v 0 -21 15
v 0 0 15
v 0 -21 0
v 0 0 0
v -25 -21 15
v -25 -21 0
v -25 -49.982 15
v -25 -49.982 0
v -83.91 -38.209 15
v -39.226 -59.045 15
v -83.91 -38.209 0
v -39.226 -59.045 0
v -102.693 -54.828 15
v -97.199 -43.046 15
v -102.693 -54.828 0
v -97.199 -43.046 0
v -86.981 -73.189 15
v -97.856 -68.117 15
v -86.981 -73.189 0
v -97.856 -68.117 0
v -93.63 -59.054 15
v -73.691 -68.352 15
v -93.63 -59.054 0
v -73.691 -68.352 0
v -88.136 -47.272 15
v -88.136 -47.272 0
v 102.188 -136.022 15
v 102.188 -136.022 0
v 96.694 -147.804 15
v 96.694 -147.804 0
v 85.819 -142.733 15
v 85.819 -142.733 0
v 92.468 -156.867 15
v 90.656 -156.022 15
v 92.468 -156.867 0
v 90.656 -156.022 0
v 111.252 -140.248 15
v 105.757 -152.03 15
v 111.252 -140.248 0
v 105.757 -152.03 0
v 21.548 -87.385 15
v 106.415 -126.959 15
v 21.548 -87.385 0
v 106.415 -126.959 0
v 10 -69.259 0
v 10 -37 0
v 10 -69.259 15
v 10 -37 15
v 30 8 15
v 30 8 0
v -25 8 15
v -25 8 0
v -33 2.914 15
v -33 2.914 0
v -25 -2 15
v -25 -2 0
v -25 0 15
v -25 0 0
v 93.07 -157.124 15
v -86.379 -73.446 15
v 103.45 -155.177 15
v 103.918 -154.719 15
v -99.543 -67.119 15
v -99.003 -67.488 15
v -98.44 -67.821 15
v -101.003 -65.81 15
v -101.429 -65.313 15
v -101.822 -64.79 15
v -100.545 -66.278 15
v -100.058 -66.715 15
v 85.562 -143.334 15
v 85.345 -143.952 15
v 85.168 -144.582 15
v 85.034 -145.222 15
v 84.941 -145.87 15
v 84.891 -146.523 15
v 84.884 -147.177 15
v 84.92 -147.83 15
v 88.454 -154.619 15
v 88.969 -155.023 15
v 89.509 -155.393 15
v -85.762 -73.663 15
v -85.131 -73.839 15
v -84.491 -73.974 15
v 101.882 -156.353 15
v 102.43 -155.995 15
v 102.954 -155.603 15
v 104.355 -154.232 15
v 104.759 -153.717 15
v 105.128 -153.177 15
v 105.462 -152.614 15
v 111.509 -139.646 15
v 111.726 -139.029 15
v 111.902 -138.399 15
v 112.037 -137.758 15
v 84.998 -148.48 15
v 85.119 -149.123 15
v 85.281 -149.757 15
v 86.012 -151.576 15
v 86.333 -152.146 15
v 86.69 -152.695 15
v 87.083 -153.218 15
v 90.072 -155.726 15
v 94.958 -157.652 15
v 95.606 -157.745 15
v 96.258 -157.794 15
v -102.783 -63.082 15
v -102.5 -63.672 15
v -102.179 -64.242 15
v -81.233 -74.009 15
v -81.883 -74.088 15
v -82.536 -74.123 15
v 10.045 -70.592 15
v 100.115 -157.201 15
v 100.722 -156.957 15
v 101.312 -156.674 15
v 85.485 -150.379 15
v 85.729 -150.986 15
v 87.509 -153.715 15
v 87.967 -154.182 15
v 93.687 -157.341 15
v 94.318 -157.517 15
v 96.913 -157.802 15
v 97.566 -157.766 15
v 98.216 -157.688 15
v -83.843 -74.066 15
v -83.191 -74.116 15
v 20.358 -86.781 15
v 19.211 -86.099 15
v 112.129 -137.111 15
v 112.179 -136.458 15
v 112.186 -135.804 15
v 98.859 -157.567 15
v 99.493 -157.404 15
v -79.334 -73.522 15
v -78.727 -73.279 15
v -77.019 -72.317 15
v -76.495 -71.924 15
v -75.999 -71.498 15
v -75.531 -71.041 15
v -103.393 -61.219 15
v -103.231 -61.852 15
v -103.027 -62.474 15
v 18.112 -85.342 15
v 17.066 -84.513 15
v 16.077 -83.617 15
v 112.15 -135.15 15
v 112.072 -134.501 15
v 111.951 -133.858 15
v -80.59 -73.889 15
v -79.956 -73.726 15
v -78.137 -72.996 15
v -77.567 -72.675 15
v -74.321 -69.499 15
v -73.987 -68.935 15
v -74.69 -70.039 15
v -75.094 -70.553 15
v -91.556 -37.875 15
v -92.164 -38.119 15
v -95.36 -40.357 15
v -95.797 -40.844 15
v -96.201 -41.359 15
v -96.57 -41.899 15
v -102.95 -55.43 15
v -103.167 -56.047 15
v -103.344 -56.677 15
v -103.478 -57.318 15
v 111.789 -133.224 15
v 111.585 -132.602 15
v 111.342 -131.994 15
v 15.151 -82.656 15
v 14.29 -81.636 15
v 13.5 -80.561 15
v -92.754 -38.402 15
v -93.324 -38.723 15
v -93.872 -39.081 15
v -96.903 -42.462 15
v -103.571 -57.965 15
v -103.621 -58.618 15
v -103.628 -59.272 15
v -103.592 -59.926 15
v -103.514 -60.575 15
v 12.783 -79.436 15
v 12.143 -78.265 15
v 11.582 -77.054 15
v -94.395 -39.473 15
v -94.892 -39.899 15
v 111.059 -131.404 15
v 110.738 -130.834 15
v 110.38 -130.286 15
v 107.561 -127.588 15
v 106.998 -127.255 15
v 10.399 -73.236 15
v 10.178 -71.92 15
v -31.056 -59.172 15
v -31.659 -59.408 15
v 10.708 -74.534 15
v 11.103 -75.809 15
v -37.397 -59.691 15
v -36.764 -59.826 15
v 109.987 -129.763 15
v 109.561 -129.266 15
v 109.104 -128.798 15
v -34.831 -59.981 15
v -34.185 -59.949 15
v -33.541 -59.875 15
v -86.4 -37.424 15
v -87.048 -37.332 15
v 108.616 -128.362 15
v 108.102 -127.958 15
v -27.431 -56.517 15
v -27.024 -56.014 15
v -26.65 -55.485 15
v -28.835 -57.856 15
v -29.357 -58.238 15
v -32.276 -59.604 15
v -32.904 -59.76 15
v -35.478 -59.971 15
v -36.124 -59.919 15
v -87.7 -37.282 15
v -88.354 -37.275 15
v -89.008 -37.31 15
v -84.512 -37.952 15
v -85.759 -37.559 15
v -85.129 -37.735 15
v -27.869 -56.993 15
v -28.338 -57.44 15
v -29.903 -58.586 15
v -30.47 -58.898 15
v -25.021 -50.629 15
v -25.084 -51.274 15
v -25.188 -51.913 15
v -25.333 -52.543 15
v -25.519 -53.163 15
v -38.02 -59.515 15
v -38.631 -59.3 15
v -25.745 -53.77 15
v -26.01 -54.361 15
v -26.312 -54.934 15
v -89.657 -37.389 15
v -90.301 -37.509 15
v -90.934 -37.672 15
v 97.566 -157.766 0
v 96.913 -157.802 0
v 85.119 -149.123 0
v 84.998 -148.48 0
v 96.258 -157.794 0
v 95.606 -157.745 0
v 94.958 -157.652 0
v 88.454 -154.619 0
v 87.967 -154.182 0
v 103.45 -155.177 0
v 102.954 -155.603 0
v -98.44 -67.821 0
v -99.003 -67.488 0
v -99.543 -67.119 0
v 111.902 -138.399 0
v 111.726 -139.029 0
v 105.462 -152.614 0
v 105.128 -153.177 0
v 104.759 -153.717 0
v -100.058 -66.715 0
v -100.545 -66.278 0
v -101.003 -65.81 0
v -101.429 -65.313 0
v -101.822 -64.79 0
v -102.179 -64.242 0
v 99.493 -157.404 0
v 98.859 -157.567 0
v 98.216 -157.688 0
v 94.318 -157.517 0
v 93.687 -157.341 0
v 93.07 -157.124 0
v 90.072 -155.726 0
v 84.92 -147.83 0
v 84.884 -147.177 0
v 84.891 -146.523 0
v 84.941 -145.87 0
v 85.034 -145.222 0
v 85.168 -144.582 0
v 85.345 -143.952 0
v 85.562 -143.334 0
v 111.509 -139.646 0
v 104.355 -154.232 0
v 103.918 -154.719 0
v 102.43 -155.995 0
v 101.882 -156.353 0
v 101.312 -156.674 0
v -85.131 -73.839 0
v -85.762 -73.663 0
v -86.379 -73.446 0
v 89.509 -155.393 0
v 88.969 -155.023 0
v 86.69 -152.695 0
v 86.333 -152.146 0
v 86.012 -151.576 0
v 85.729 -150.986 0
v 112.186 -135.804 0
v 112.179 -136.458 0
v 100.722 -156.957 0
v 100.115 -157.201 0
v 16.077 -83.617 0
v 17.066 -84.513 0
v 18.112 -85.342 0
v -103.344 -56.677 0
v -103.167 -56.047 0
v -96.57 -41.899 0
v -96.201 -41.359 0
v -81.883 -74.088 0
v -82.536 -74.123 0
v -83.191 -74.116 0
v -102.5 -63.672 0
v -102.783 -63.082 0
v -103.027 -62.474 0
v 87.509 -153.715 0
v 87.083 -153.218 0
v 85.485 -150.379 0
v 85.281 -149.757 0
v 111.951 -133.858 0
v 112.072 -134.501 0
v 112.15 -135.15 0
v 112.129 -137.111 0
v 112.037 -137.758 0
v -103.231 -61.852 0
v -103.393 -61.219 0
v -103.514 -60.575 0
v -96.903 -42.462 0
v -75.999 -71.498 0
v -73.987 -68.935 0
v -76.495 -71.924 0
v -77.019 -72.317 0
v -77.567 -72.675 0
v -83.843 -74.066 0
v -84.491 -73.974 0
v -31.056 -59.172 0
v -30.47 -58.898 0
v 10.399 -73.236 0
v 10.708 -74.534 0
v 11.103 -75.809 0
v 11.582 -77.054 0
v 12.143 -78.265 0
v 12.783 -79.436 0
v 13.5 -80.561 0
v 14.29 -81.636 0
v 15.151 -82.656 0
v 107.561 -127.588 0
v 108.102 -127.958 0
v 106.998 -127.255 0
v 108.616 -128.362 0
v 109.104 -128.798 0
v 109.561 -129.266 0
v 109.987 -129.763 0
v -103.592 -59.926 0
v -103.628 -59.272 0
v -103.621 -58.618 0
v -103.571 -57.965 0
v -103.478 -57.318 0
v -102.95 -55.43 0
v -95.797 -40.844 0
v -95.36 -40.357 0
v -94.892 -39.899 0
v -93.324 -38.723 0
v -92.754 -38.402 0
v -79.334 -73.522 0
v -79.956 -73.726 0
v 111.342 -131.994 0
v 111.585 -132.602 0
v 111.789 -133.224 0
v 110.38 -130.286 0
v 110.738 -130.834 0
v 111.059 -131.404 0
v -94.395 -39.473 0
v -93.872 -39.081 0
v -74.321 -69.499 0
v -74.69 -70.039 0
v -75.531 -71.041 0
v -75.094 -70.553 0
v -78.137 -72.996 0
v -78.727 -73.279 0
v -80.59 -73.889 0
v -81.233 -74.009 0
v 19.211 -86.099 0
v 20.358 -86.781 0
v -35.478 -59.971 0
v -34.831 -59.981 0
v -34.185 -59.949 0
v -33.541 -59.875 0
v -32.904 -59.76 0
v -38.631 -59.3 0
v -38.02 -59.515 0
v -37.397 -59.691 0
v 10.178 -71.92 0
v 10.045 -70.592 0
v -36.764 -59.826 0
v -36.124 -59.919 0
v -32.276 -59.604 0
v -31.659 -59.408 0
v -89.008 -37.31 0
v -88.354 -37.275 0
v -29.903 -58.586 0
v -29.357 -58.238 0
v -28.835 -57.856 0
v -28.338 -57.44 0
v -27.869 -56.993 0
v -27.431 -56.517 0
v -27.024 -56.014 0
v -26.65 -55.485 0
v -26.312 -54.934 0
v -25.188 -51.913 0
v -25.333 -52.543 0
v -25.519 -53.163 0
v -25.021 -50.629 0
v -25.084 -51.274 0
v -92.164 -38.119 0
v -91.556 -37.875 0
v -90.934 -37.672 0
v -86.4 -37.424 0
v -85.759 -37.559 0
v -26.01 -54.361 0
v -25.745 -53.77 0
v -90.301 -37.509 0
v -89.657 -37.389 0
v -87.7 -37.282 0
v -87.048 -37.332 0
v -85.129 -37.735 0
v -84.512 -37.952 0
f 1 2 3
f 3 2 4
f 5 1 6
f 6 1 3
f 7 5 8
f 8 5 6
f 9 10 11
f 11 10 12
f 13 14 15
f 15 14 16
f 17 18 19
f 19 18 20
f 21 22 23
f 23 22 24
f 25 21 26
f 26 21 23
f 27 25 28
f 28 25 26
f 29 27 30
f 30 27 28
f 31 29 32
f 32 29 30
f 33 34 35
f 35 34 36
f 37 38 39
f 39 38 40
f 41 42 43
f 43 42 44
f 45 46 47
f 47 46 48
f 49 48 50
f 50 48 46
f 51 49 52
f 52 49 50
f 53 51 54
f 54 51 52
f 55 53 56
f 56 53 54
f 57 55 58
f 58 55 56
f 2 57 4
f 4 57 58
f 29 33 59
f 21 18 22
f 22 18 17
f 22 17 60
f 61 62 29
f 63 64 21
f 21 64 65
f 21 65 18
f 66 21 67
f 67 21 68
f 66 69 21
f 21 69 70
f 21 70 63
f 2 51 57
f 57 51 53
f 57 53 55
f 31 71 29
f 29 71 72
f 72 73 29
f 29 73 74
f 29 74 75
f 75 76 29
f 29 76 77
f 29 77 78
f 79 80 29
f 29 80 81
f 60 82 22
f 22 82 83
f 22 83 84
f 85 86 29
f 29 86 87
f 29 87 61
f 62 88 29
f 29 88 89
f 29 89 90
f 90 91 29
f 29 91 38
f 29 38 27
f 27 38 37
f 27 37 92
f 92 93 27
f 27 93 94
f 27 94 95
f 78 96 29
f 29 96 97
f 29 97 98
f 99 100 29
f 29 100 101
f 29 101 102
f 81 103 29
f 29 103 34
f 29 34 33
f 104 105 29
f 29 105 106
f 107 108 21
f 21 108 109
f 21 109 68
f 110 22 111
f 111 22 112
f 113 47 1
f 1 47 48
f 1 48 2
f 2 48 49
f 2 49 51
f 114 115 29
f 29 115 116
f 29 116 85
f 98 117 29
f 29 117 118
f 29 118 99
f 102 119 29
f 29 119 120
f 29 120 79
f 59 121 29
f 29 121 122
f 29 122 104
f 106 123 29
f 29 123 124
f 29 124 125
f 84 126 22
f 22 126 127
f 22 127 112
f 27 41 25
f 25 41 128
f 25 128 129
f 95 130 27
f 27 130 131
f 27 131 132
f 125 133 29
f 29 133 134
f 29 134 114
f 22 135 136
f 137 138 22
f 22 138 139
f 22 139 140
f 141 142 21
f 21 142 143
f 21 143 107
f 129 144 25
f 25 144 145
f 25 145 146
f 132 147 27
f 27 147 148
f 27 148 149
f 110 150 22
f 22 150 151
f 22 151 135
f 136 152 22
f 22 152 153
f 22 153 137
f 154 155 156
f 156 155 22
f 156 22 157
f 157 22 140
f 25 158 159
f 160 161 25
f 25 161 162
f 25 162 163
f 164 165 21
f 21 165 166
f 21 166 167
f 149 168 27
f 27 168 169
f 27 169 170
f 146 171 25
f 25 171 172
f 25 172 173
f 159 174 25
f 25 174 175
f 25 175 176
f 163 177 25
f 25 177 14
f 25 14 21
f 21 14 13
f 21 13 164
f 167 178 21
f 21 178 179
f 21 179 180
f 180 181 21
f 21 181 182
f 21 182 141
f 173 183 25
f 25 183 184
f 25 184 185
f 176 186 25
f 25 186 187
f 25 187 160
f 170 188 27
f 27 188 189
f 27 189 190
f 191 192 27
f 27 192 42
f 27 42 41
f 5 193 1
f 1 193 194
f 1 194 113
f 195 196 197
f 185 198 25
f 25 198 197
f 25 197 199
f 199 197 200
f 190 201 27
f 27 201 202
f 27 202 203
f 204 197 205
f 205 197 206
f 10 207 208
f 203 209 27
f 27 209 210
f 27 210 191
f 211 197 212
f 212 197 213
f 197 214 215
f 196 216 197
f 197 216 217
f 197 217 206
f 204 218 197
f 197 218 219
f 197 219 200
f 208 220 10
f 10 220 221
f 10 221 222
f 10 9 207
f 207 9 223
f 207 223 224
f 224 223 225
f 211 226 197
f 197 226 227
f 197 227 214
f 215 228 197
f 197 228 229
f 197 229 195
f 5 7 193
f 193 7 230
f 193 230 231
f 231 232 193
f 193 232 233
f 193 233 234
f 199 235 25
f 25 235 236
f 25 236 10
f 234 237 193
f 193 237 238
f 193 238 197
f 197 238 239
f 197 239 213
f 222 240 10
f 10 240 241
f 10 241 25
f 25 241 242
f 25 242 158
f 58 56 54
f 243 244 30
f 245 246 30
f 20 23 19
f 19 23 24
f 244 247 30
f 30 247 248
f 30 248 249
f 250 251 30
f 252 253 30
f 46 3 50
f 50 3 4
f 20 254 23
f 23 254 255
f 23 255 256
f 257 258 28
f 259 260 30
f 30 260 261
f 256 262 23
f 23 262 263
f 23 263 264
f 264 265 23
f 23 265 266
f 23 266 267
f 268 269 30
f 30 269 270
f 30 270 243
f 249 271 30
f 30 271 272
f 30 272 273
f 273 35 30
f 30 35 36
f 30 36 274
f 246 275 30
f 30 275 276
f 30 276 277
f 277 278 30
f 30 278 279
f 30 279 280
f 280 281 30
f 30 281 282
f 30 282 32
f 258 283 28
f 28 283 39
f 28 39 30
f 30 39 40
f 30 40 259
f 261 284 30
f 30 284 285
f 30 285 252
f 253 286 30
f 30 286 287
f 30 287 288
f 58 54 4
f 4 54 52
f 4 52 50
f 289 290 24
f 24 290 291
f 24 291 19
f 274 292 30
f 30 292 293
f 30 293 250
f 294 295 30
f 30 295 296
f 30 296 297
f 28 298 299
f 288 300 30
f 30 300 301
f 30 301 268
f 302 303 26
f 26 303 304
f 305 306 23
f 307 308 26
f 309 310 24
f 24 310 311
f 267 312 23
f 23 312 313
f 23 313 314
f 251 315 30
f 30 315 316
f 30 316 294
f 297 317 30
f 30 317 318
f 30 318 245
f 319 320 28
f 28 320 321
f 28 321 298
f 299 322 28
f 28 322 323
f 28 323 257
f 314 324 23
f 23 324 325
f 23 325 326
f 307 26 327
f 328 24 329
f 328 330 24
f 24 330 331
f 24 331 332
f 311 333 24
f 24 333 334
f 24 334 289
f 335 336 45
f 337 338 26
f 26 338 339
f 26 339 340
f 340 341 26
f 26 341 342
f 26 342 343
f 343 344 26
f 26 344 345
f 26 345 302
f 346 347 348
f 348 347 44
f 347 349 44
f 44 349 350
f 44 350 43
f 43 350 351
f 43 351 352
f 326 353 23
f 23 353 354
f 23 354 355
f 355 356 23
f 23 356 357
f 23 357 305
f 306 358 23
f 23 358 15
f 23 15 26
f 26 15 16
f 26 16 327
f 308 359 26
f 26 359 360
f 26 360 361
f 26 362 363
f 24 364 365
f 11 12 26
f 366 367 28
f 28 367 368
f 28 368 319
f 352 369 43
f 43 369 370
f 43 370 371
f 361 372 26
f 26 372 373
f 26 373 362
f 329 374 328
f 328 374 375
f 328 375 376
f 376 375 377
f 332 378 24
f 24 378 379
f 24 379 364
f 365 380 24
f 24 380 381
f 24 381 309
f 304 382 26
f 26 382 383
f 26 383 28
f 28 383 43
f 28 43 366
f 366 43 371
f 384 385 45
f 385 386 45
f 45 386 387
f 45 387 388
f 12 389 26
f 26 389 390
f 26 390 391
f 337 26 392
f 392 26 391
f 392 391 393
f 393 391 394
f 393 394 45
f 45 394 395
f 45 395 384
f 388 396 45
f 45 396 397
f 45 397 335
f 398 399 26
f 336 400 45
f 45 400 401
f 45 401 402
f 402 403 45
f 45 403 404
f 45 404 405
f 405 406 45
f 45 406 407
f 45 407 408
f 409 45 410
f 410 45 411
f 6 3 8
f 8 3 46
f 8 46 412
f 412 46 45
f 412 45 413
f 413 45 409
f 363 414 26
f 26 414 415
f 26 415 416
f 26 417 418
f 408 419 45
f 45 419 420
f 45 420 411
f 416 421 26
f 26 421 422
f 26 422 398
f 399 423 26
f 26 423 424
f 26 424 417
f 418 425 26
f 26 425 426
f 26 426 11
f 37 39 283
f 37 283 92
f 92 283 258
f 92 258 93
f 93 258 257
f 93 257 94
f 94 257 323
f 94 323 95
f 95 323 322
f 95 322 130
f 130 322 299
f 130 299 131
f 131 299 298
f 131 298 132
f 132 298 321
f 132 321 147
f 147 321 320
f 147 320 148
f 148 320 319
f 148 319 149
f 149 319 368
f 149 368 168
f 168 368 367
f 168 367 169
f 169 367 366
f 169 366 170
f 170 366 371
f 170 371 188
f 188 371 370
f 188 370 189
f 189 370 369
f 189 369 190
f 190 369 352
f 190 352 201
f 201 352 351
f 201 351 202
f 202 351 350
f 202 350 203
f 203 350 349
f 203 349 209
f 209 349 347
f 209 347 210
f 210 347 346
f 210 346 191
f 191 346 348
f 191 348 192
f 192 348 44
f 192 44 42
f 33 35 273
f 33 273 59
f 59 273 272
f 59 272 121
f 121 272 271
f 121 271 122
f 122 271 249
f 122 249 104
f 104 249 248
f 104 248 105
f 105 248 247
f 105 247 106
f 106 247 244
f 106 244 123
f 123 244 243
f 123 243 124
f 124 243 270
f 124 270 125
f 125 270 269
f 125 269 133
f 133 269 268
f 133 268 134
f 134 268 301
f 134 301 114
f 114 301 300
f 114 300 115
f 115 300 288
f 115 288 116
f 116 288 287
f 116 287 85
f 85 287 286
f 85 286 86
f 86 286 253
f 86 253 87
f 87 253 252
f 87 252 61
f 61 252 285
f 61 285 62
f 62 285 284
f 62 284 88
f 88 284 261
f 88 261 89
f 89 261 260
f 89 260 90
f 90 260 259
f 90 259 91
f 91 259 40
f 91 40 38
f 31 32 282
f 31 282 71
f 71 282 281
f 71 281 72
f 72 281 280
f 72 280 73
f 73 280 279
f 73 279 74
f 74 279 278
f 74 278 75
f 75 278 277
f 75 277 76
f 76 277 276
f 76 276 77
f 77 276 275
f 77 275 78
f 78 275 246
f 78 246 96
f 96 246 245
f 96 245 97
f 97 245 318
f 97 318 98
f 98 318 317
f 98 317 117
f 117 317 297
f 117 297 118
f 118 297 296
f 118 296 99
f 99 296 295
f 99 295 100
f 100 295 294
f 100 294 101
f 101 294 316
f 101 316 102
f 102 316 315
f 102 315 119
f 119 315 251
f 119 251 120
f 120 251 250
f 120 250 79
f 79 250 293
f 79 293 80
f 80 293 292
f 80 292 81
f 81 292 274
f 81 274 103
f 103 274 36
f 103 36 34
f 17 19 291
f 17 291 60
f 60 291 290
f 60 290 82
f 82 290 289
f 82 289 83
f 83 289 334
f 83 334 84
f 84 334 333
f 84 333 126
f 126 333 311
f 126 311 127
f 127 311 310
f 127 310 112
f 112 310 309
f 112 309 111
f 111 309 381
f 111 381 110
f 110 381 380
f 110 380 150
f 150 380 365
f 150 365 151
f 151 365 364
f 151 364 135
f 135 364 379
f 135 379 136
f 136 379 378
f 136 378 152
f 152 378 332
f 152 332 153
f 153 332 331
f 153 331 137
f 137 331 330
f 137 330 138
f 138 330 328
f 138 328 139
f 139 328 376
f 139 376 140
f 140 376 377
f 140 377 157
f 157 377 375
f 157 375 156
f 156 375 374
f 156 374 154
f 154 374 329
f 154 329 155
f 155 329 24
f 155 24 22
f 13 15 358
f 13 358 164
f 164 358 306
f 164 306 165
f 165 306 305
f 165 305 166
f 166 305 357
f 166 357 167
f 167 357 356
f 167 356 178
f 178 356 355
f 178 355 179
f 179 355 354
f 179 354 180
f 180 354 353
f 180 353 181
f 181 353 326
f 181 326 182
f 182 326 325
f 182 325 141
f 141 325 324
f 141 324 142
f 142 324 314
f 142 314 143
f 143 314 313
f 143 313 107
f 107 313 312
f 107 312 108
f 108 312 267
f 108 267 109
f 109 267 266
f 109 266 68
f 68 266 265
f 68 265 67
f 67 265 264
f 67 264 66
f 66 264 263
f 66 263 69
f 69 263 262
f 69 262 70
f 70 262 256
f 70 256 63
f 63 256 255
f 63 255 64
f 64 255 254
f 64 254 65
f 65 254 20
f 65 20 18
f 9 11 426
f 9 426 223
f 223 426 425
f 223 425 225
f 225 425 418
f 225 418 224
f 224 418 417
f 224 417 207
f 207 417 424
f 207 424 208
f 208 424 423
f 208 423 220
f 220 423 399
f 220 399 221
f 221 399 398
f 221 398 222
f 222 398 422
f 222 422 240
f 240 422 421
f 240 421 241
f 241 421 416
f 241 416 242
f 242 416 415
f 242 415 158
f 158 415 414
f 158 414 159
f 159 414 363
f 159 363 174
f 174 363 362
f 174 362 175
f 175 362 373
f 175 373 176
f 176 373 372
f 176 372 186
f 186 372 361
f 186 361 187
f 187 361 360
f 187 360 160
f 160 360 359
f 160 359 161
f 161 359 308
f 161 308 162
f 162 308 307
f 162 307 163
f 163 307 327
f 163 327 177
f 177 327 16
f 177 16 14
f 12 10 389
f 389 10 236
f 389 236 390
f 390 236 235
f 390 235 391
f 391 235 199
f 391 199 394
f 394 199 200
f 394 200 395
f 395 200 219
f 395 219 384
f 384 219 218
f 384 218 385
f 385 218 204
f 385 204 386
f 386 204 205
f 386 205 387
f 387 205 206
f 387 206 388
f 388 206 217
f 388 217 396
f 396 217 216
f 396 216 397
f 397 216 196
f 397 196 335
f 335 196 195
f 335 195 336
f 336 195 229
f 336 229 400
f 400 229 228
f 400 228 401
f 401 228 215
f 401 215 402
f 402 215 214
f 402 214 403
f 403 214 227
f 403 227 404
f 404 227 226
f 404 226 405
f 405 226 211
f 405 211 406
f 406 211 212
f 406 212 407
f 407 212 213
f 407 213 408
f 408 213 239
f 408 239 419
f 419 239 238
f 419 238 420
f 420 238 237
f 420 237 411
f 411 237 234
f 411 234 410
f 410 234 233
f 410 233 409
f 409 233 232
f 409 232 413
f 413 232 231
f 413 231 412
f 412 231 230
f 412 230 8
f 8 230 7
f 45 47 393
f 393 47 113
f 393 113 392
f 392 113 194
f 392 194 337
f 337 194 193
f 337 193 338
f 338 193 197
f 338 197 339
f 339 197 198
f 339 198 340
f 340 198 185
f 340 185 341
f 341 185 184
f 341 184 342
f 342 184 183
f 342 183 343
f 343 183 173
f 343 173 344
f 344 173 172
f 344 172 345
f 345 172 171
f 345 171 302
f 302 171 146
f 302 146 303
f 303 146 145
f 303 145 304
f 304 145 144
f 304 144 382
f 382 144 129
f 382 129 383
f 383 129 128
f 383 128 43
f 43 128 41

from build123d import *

# Parameters (mm, degrees)
BOSS_EXTRUDE1_DEPTH = 15
FILLET1_R           = 10
FILLET2_R           = 20


with BuildPart() as part:
    # Sketch1 → Boss-Extrude1 (new body)
    with BuildSketch(Plane.XY):
        Polygon((0, 0), (-25, 0), (-25, -2), (-33, 2.914001084), (-25, 8), (10, 8), (30, 8), (10, -37), (10, -82), (115.477706991, -131.185062534), (101.531304353, -161.093219507), (81.592533038, -151.795617748), (85.818715656, -142.732539878), (96.6944091, -147.803959019), (102.188446503, -136.021957787), (-88.136188775, -47.272122822), (-93.630226177, -59.054124053), (-73.691454863, -68.351725812), (-77.91763748, -77.414803682), (-106.919486665, -63.891019306), (-92.973084028, -33.982862334), (-25, -65.679231965), (-25, -21), (0, -21), align=None)
    extrude(amount=BOSS_EXTRUDE1_DEPTH)

    # Fillet1
    fillet1_edges = [part.edges().sort_by_distance(p)[0] for p in [
        (115.477706991, -131.185062534, 7.5),
        (101.531304353, -161.093219507, 7.5),
        (81.592533038, -151.795617748, 7.5),
        (-77.91763748, -77.414803682, 7.5),
        (-106.919486665, -63.891019306, 7.5),
        (-92.973084028, -33.982862334, 7.5),
        (-25, -65.679231965, 7.5),
    ]]
    fillet(fillet1_edges, radius=FILLET1_R - 0.0001)  # a hair under: the kernel refuses the full size

    # Fillet2
    fillet2_edges = [part.edges().sort_by_distance(p)[0] for p in [
        (10, -82, 7.5),
    ]]
    fillet(fillet2_edges, radius=FILLET2_R)


solid = part.part
